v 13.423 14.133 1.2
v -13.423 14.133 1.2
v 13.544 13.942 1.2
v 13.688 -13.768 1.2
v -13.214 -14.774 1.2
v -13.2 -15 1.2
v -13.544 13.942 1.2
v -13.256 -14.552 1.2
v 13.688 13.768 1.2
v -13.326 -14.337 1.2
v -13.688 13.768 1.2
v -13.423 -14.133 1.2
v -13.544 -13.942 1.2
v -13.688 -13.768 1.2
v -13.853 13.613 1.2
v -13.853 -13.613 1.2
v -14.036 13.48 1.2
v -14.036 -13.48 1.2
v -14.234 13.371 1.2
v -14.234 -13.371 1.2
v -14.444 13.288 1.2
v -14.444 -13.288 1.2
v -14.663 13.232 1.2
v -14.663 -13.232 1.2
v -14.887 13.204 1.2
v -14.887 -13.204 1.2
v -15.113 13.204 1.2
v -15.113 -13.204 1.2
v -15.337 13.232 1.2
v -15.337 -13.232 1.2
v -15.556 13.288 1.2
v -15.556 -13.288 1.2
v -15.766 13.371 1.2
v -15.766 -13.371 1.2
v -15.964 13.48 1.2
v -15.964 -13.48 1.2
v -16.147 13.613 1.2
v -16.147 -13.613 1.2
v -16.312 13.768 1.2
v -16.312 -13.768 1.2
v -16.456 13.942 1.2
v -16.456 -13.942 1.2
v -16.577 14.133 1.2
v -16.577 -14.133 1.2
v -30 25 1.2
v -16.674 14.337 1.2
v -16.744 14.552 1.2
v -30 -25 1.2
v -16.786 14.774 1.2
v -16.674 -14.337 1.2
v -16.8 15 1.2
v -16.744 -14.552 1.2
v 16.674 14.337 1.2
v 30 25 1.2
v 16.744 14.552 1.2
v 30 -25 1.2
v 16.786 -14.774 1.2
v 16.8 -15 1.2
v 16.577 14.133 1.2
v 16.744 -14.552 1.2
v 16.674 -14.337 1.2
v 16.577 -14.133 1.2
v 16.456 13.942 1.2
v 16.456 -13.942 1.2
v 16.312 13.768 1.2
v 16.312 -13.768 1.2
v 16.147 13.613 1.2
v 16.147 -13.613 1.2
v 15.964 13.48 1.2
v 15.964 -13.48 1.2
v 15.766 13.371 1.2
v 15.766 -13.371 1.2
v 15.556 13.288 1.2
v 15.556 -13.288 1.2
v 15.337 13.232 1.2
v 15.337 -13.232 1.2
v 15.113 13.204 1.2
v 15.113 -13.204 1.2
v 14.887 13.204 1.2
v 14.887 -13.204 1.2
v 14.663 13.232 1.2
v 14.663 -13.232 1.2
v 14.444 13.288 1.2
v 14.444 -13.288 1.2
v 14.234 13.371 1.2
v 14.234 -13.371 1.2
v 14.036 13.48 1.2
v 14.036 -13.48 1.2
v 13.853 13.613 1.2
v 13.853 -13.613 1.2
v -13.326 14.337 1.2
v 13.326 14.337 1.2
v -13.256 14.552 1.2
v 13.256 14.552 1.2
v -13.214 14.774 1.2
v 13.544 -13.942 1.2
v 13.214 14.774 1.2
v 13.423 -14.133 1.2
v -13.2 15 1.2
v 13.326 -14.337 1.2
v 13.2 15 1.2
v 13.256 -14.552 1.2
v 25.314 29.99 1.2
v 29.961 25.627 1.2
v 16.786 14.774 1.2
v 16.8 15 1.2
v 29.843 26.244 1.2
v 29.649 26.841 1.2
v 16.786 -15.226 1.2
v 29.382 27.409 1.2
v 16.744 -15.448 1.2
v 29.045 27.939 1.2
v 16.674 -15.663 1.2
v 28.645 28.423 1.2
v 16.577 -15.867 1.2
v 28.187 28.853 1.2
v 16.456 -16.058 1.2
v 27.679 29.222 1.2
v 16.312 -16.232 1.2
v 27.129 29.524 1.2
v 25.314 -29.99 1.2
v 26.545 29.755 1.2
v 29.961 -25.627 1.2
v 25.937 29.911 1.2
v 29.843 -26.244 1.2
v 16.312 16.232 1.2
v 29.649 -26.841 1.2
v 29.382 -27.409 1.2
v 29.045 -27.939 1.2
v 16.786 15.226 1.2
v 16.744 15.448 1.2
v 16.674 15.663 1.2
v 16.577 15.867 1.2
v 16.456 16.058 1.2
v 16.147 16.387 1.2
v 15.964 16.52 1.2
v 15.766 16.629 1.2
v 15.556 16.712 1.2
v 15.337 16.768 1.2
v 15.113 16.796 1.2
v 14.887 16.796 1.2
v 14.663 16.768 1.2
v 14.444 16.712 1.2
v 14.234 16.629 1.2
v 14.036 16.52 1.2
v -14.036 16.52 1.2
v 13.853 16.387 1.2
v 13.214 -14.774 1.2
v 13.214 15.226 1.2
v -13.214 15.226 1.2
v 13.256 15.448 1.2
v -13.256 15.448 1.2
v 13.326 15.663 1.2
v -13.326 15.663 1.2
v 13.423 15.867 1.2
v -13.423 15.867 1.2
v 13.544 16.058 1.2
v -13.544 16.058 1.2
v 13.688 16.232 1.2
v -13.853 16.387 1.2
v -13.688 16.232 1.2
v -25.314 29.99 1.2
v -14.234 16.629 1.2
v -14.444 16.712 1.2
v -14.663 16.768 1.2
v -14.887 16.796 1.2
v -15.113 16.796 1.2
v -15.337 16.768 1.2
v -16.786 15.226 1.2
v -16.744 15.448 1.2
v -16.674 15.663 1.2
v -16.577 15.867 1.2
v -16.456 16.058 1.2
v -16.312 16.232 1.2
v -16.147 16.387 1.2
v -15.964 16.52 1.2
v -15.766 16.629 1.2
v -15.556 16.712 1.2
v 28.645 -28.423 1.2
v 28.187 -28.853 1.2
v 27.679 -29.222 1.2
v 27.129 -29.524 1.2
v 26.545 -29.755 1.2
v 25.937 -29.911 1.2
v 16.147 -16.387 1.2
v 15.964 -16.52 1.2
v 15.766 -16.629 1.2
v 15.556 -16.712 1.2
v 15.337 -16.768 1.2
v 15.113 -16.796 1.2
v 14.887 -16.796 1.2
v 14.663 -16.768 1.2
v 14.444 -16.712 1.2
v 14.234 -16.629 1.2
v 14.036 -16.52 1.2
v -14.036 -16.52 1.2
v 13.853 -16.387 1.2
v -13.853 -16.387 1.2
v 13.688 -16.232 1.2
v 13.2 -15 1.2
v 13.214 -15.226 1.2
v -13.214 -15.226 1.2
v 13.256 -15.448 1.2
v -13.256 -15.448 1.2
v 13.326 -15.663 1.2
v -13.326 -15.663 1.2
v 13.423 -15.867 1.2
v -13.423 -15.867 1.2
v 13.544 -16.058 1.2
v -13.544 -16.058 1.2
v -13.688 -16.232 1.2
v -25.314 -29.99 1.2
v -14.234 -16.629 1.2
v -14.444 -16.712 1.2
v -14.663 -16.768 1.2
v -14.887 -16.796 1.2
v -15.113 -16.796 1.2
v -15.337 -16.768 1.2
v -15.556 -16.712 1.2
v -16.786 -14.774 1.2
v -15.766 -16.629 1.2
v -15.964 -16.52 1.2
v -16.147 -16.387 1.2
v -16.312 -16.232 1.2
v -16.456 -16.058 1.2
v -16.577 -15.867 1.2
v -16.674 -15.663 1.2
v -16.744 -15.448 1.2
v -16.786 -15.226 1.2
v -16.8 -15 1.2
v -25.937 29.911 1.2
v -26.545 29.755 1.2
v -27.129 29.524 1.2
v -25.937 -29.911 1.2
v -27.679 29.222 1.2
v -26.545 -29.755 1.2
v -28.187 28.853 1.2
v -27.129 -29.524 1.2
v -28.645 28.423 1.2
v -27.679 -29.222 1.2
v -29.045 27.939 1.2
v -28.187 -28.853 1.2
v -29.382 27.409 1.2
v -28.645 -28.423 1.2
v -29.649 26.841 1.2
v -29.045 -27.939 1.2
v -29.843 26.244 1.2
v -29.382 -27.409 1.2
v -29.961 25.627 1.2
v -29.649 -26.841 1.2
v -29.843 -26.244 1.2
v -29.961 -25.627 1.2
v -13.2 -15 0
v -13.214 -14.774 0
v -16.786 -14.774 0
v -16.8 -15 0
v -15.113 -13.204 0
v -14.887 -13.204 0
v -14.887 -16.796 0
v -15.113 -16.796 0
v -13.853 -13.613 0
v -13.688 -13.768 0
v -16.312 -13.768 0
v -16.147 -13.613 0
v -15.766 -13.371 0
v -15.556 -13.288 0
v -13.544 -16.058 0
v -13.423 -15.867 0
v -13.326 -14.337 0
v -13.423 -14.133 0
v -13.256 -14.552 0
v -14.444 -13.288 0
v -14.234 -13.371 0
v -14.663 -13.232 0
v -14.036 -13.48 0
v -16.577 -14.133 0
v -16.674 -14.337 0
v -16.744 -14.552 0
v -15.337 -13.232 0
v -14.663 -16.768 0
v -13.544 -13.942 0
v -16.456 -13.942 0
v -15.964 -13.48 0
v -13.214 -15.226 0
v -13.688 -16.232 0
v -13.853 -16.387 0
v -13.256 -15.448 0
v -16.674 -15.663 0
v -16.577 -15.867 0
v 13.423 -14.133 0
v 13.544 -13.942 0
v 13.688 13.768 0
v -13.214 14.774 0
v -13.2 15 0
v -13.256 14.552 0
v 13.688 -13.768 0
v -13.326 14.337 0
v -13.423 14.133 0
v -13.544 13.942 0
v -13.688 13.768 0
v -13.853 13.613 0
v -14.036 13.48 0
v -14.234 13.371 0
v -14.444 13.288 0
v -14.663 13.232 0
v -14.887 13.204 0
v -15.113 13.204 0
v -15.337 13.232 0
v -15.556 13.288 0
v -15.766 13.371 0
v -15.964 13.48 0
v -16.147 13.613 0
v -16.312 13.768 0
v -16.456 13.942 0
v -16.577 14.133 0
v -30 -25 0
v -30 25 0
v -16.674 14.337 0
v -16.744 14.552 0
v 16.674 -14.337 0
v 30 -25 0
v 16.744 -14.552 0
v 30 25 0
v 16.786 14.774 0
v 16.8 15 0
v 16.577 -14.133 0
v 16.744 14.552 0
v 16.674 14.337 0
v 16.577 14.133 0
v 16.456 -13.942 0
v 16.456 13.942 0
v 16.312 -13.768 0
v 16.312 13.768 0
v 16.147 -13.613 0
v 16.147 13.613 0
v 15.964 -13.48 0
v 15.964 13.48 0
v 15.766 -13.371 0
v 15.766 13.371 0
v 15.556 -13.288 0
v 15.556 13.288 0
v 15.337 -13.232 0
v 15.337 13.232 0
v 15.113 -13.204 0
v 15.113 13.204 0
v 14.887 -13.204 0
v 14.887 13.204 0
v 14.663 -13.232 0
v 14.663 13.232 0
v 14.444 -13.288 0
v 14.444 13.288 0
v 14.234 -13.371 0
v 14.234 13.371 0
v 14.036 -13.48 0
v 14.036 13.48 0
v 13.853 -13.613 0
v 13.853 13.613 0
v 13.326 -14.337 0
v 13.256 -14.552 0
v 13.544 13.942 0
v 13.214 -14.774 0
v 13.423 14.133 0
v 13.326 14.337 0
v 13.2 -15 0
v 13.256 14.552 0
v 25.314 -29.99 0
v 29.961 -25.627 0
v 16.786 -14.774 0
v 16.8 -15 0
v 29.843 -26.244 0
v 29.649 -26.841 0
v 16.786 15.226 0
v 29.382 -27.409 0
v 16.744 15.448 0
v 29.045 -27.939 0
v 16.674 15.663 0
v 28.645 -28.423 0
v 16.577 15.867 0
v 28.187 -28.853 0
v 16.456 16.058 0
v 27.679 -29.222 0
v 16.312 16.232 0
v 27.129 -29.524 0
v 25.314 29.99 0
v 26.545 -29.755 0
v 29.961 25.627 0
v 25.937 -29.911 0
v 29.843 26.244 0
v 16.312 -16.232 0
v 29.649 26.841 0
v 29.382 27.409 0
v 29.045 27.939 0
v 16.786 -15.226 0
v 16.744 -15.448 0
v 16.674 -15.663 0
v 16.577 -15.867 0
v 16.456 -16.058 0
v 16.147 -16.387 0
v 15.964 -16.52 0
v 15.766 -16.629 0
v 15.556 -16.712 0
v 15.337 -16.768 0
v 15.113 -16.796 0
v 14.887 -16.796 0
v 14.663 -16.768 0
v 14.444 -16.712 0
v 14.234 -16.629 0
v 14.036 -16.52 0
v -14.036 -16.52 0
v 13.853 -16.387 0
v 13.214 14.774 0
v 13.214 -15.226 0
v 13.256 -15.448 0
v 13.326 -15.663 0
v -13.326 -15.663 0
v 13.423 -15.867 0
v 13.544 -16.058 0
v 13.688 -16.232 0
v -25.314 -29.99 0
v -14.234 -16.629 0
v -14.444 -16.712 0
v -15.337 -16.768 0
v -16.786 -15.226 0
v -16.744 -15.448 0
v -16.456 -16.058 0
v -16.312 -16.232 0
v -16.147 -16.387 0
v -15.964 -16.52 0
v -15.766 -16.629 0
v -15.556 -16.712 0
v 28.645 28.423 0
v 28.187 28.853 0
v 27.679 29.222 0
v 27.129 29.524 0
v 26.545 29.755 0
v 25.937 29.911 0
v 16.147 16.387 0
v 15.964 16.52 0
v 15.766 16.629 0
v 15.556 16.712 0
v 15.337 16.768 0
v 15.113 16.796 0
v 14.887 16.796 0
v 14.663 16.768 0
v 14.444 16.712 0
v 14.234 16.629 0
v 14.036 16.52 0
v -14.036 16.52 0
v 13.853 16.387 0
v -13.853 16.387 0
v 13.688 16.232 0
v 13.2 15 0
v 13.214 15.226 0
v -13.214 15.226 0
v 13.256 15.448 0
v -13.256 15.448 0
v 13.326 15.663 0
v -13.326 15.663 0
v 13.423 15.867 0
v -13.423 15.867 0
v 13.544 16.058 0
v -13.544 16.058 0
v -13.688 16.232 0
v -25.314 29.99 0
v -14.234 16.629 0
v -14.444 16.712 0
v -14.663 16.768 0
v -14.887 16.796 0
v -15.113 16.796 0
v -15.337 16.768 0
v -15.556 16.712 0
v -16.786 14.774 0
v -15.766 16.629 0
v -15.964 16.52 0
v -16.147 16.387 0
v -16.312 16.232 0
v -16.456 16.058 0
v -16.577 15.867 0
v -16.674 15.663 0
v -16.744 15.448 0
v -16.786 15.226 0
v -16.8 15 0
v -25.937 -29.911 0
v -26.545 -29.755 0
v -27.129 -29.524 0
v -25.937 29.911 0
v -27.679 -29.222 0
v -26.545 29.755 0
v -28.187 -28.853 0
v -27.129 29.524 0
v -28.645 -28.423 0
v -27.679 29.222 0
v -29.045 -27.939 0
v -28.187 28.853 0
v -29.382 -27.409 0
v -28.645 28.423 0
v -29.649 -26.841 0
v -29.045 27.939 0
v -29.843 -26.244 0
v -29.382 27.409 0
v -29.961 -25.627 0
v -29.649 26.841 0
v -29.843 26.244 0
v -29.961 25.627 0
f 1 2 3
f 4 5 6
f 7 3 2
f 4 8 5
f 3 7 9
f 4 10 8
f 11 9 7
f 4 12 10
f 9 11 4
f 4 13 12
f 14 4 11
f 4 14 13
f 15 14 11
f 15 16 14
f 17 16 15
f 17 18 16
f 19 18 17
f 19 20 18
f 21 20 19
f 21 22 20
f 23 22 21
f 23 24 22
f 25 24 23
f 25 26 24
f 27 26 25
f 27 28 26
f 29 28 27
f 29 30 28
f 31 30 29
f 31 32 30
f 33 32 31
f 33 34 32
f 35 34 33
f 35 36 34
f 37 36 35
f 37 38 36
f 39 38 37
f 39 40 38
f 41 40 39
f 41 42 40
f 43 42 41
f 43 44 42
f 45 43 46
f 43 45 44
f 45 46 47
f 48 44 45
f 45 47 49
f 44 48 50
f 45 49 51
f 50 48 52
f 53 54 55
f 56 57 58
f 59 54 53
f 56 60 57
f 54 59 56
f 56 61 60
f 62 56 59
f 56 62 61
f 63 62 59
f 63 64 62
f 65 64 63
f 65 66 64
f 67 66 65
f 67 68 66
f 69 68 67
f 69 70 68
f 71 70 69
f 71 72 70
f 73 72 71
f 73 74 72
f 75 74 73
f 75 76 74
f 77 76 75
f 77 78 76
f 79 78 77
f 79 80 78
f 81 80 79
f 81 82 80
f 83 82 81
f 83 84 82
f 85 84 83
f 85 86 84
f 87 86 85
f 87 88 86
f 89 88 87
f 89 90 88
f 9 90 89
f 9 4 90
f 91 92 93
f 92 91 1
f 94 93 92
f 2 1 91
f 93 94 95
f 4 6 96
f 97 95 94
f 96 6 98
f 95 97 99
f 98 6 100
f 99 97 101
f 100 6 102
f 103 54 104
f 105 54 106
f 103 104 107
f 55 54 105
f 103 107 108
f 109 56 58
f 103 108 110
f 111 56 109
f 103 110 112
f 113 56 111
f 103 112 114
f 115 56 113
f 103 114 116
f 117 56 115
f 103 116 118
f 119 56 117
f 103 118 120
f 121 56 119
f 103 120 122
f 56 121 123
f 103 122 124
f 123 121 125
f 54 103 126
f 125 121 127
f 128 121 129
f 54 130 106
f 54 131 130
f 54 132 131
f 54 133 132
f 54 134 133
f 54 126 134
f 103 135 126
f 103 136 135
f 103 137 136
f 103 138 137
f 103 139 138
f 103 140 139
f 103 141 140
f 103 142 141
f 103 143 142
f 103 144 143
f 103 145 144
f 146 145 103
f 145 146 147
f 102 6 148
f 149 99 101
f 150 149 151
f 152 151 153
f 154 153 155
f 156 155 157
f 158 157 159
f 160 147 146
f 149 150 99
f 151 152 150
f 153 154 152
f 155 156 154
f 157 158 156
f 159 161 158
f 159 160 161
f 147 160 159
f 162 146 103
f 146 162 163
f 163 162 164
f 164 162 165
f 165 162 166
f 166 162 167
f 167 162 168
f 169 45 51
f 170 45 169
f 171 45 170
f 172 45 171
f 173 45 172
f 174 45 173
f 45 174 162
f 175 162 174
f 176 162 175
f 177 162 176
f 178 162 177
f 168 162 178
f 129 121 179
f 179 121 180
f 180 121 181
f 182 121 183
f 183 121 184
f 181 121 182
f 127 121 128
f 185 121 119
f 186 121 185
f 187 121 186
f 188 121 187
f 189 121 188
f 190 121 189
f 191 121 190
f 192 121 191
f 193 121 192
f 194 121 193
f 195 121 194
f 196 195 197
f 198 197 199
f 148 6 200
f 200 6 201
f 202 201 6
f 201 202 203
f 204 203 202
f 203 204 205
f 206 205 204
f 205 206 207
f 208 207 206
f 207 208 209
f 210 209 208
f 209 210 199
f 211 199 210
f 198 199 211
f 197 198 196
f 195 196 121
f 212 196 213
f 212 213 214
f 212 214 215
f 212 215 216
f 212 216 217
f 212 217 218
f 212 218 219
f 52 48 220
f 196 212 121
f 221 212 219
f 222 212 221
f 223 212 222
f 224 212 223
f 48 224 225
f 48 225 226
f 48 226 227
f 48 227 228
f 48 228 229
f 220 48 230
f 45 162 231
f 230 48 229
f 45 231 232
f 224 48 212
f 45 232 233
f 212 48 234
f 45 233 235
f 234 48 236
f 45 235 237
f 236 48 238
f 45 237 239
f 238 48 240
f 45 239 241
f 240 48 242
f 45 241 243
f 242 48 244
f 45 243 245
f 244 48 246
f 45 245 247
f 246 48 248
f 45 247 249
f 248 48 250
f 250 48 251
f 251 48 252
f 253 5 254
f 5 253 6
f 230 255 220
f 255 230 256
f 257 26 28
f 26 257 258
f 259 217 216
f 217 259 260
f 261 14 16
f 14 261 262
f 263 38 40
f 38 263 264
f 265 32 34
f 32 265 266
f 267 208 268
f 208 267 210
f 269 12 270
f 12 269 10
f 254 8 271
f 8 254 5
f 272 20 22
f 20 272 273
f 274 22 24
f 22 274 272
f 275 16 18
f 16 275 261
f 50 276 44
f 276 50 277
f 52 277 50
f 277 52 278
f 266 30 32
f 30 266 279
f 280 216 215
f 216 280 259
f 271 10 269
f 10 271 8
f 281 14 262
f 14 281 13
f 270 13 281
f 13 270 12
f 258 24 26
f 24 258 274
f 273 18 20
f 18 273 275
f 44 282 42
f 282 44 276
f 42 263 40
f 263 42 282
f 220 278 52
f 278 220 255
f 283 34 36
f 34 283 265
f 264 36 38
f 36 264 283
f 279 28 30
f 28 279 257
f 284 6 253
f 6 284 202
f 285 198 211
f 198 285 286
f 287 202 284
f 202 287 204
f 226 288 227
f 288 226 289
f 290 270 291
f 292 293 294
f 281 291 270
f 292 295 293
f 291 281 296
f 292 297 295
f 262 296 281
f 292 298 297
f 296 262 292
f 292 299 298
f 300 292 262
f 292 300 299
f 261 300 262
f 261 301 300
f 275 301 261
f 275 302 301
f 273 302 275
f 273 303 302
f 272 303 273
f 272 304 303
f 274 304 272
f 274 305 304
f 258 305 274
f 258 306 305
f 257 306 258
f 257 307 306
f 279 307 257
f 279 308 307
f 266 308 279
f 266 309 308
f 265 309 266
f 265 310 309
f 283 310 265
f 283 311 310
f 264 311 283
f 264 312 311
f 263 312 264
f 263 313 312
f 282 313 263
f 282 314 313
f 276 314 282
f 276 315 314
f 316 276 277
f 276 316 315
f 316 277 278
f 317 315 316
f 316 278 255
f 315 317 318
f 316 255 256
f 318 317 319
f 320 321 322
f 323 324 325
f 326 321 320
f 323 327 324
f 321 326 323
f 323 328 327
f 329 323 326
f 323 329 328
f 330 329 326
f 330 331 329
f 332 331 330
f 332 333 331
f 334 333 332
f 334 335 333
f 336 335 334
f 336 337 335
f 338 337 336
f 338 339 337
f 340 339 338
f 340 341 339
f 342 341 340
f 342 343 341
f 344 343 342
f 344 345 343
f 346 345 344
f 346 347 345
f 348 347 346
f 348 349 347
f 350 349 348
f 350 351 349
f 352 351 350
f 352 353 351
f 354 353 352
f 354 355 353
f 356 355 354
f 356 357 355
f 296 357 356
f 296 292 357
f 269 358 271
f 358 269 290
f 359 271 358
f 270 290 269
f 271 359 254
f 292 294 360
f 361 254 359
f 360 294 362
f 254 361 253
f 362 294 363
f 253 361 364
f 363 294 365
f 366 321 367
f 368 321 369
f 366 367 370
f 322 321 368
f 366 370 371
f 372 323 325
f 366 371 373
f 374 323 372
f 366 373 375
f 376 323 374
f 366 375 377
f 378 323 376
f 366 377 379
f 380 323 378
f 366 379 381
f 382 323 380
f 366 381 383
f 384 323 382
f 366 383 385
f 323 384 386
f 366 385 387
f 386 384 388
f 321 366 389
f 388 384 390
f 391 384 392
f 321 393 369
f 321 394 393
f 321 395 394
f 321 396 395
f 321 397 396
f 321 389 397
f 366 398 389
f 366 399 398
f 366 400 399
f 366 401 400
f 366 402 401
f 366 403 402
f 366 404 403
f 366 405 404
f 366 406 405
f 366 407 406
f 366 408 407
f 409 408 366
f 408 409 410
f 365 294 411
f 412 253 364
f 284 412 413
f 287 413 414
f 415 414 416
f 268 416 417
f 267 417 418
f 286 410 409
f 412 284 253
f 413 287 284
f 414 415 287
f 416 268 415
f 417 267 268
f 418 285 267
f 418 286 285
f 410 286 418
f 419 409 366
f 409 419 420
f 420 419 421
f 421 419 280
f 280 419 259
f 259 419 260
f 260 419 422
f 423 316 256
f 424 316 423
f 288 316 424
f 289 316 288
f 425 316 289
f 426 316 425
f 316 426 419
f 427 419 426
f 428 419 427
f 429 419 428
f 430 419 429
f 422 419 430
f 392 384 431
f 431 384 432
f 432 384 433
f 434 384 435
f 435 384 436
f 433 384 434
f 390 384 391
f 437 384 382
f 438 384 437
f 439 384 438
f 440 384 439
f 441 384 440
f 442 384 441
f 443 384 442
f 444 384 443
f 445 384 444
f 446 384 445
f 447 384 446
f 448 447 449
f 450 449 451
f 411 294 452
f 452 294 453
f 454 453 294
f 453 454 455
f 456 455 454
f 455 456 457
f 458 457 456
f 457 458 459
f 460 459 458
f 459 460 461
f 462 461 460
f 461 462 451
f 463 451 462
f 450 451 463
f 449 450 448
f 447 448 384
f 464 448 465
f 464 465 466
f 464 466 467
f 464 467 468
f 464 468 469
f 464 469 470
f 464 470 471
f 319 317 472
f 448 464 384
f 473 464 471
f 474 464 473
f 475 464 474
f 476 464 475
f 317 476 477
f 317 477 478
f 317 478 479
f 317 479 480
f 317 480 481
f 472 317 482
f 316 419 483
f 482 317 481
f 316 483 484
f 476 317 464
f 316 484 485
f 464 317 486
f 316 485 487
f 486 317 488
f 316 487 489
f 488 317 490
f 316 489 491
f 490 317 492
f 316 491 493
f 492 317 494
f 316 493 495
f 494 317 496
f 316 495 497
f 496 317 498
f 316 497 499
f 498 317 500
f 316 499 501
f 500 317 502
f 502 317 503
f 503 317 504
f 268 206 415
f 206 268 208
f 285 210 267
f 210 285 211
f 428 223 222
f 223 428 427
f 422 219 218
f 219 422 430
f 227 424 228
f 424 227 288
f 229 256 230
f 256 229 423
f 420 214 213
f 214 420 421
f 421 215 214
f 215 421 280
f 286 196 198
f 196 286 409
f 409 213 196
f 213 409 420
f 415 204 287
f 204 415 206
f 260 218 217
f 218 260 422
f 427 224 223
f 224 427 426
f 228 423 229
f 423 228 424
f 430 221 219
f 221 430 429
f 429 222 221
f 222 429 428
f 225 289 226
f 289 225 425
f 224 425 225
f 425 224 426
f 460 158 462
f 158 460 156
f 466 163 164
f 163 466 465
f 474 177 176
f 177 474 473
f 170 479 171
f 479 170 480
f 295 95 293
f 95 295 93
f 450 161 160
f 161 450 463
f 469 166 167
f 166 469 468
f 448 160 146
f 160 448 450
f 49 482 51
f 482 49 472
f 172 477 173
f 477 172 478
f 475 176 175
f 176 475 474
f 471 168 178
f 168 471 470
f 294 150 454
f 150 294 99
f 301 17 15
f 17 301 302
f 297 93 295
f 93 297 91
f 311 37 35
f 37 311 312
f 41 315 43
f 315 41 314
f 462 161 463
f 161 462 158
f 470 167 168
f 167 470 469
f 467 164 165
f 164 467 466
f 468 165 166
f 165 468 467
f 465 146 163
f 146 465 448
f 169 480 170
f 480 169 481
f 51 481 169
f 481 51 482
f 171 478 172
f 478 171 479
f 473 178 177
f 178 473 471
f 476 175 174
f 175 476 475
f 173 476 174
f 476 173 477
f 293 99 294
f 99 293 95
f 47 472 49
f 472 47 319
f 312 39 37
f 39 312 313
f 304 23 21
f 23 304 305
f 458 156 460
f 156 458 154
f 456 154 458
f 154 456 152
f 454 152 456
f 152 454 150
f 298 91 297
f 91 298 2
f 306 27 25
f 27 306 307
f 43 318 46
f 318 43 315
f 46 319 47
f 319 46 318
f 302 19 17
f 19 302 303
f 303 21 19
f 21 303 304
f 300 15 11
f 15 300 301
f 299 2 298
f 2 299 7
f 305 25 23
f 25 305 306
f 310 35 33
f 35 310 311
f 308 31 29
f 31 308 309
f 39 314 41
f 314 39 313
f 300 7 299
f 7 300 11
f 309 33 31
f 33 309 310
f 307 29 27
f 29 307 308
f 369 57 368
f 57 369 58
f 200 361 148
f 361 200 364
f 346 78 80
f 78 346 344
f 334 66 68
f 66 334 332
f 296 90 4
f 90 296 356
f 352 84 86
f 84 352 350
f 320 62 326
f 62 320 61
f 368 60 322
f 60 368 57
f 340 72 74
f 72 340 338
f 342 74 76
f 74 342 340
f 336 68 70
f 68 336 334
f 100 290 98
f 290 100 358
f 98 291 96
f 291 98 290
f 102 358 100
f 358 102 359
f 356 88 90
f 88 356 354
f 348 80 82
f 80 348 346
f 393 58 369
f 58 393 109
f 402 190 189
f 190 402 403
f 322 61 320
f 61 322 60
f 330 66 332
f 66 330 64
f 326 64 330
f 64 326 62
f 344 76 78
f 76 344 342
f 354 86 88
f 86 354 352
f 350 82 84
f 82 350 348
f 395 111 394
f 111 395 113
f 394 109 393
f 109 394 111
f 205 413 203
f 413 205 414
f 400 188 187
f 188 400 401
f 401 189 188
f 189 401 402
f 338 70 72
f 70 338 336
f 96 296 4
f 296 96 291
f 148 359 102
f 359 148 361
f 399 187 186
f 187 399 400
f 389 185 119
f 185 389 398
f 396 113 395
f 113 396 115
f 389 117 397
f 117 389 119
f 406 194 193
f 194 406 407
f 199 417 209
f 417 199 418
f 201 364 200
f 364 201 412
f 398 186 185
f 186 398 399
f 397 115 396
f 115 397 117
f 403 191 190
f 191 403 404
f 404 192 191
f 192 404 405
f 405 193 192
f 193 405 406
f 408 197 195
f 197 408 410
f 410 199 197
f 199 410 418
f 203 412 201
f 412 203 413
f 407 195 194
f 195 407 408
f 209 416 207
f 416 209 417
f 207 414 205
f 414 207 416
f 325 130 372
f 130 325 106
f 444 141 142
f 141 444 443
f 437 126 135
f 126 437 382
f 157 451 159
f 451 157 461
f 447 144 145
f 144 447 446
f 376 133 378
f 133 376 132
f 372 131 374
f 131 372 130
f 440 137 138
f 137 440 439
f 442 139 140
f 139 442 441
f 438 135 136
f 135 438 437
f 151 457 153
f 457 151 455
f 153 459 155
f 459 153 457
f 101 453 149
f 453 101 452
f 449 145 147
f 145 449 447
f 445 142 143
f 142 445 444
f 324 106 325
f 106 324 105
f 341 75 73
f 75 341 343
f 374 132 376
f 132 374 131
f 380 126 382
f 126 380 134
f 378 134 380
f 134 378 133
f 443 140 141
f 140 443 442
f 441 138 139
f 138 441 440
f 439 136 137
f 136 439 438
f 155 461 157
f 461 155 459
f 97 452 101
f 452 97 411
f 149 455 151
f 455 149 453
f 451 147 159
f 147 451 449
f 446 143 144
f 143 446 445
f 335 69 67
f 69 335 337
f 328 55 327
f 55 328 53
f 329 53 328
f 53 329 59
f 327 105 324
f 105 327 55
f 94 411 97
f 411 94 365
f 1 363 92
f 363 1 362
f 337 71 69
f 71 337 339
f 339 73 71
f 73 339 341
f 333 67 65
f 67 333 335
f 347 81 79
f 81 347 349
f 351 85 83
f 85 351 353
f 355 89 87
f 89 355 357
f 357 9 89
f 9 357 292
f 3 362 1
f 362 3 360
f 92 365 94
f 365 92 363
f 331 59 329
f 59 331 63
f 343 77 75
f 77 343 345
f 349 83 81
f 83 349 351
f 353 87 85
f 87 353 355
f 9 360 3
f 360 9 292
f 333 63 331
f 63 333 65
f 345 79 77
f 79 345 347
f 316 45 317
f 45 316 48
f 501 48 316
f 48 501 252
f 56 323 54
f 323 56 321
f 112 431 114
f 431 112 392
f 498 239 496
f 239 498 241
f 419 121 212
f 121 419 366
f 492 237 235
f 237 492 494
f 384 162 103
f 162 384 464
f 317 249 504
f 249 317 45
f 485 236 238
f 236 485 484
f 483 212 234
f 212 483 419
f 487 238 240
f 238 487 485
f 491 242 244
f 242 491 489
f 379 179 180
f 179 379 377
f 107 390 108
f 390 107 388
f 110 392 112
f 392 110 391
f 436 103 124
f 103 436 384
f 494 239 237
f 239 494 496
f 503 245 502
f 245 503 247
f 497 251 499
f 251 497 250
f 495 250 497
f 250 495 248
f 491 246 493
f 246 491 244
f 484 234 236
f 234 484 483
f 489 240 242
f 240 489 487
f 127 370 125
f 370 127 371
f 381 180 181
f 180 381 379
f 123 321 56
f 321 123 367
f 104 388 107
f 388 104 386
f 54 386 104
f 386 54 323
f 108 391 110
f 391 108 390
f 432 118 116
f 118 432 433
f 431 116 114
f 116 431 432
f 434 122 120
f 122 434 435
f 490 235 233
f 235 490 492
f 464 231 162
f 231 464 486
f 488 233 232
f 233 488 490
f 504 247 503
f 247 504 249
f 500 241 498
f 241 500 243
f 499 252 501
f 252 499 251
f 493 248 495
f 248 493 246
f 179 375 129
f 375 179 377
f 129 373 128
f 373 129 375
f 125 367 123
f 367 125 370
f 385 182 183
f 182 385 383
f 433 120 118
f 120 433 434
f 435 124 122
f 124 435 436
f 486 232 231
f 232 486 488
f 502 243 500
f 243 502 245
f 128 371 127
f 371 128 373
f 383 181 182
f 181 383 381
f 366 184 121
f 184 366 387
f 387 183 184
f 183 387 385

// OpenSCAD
$fn = 50;


difference() {
	union() {
		hull() {
			translate(v = [-25.0000000000, 25.0000000000, 0]) {
				cylinder(h = 15, r = 5);
			}
			translate(v = [25.0000000000, 25.0000000000, 0]) {
				cylinder(h = 15, r = 5);
			}
			translate(v = [-25.0000000000, -25.0000000000, 0]) {
				cylinder(h = 15, r = 5);
			}
			translate(v = [25.0000000000, -25.0000000000, 0]) {
				cylinder(h = 15, r = 5);
			}
		}
	}
	union() {
		translate(v = [0, 0, 1.2000000000]) {
			hull() {
				translate(v = [-25.0000000000, 25.0000000000, 0]) {
					cylinder(h = 13.8000000000, r = 3.8000000000);
				}
				translate(v = [25.0000000000, 25.0000000000, 0]) {
					cylinder(h = 13.8000000000, r = 3.8000000000);
				}
				translate(v = [-25.0000000000, -25.0000000000, 0]) {
					cylinder(h = 13.8000000000, r = 3.8000000000);
				}
				translate(v = [25.0000000000, -25.0000000000, 0]) {
					cylinder(h = 13.8000000000, r = 3.8000000000);
				}
			}
		}
		#translate(v = [-15.0000000000, -15.0000000000, 0]) {
			cylinder(h = 1.2000000000, r = 1.8000000000);
		}
		#translate(v = [-15.0000000000, 15.0000000000, 0]) {
			cylinder(h = 1.2000000000, r = 1.8000000000);
		}
		#translate(v = [15.0000000000, -15.0000000000, 0]) {
			cylinder(h = 1.2000000000, r = 1.8000000000);
		}
		#translate(v = [15.0000000000, 15.0000000000, 0]) {
			cylinder(h = 1.2000000000, r = 1.8000000000);
		}
		translate(v = [-250.0000000000, -250.0000000000, 1.2000000000]) {
			cube(size = [500, 500, 500]);
		}
		translate(v = [-250.0000000000, -250.0000000000, 1.2000000000]) {
			cube(size = [500, 500, 500]);
		}
		translate(v = [-250.0000000000, -250.0000000000, 1.2000000000]) {
			cube(size = [500, 500, 500]);
		}
	}
}
